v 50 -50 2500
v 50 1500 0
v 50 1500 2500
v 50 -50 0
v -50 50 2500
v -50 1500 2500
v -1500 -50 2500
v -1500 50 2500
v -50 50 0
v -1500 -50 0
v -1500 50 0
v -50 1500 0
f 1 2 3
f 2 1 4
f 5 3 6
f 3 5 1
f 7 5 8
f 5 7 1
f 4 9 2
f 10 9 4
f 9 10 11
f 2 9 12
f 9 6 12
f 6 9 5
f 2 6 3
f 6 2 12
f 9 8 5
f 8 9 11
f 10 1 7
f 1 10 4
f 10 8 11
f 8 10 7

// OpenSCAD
// file: templates/t_simple-segment.scad
include <../templates/basic-dims.scad>

module simple_segment() {
    translate([-section_thickness/2, 0, 0])
    cube([section_thickness, section_width, section_height]);
}
// file: modifiers/cornerize.scad
include <../templates/basic-dims.scad>

trim_depth = 10000;

module cornerize_trim(amount, height = section_height) {
    difference() {
        children();
        translate([-trim_depth/2, 0, 0])
        cube([trim_depth, amount, height]);
    }
}

//  Child 0 is front
//  Child 1 is side
module cornerize(front_width = section_width, front_thickness = section_thickness,
    side_width = section_width, side_thickness = section_thickness) {
    
    new_front_size = front_width - side_thickness/2;
    front_scale_amt = new_front_size / front_width;
    
    new_side_size = side_width - front_thickness/2;
    side_scale_amt = new_side_size / side_width;

    //translate([0, side_thickness/2, 0])
    //scale([1, front_scale_amt, 1])
    cornerize_trim(side_thickness/2)
    children(0);

    rotate([0, 0, 90])
    cornerize_trim(front_thickness/2)
    children(1);

    translate([-front_thickness/2, -side_thickness/2, 0])
    cube([front_thickness, side_thickness, section_height]);
}
// file: templates/basic-dims.scad
unit = 1000;

section_width = unit * 1.5;
section_height = unit * 2.5;
section_thickness = unit * 0.1;

rt = sqrt(2);

//  -- Notes --
//  Z is UP
//  X is FORWARD (out of the screen)
// main file
include <./templates/basic-dims.scad>
include <./modifiers/cornerize.scad>
include <./templates/t_simple-segment.scad>

cornerize() {
    simple_segment();
    simple_segment();
}
